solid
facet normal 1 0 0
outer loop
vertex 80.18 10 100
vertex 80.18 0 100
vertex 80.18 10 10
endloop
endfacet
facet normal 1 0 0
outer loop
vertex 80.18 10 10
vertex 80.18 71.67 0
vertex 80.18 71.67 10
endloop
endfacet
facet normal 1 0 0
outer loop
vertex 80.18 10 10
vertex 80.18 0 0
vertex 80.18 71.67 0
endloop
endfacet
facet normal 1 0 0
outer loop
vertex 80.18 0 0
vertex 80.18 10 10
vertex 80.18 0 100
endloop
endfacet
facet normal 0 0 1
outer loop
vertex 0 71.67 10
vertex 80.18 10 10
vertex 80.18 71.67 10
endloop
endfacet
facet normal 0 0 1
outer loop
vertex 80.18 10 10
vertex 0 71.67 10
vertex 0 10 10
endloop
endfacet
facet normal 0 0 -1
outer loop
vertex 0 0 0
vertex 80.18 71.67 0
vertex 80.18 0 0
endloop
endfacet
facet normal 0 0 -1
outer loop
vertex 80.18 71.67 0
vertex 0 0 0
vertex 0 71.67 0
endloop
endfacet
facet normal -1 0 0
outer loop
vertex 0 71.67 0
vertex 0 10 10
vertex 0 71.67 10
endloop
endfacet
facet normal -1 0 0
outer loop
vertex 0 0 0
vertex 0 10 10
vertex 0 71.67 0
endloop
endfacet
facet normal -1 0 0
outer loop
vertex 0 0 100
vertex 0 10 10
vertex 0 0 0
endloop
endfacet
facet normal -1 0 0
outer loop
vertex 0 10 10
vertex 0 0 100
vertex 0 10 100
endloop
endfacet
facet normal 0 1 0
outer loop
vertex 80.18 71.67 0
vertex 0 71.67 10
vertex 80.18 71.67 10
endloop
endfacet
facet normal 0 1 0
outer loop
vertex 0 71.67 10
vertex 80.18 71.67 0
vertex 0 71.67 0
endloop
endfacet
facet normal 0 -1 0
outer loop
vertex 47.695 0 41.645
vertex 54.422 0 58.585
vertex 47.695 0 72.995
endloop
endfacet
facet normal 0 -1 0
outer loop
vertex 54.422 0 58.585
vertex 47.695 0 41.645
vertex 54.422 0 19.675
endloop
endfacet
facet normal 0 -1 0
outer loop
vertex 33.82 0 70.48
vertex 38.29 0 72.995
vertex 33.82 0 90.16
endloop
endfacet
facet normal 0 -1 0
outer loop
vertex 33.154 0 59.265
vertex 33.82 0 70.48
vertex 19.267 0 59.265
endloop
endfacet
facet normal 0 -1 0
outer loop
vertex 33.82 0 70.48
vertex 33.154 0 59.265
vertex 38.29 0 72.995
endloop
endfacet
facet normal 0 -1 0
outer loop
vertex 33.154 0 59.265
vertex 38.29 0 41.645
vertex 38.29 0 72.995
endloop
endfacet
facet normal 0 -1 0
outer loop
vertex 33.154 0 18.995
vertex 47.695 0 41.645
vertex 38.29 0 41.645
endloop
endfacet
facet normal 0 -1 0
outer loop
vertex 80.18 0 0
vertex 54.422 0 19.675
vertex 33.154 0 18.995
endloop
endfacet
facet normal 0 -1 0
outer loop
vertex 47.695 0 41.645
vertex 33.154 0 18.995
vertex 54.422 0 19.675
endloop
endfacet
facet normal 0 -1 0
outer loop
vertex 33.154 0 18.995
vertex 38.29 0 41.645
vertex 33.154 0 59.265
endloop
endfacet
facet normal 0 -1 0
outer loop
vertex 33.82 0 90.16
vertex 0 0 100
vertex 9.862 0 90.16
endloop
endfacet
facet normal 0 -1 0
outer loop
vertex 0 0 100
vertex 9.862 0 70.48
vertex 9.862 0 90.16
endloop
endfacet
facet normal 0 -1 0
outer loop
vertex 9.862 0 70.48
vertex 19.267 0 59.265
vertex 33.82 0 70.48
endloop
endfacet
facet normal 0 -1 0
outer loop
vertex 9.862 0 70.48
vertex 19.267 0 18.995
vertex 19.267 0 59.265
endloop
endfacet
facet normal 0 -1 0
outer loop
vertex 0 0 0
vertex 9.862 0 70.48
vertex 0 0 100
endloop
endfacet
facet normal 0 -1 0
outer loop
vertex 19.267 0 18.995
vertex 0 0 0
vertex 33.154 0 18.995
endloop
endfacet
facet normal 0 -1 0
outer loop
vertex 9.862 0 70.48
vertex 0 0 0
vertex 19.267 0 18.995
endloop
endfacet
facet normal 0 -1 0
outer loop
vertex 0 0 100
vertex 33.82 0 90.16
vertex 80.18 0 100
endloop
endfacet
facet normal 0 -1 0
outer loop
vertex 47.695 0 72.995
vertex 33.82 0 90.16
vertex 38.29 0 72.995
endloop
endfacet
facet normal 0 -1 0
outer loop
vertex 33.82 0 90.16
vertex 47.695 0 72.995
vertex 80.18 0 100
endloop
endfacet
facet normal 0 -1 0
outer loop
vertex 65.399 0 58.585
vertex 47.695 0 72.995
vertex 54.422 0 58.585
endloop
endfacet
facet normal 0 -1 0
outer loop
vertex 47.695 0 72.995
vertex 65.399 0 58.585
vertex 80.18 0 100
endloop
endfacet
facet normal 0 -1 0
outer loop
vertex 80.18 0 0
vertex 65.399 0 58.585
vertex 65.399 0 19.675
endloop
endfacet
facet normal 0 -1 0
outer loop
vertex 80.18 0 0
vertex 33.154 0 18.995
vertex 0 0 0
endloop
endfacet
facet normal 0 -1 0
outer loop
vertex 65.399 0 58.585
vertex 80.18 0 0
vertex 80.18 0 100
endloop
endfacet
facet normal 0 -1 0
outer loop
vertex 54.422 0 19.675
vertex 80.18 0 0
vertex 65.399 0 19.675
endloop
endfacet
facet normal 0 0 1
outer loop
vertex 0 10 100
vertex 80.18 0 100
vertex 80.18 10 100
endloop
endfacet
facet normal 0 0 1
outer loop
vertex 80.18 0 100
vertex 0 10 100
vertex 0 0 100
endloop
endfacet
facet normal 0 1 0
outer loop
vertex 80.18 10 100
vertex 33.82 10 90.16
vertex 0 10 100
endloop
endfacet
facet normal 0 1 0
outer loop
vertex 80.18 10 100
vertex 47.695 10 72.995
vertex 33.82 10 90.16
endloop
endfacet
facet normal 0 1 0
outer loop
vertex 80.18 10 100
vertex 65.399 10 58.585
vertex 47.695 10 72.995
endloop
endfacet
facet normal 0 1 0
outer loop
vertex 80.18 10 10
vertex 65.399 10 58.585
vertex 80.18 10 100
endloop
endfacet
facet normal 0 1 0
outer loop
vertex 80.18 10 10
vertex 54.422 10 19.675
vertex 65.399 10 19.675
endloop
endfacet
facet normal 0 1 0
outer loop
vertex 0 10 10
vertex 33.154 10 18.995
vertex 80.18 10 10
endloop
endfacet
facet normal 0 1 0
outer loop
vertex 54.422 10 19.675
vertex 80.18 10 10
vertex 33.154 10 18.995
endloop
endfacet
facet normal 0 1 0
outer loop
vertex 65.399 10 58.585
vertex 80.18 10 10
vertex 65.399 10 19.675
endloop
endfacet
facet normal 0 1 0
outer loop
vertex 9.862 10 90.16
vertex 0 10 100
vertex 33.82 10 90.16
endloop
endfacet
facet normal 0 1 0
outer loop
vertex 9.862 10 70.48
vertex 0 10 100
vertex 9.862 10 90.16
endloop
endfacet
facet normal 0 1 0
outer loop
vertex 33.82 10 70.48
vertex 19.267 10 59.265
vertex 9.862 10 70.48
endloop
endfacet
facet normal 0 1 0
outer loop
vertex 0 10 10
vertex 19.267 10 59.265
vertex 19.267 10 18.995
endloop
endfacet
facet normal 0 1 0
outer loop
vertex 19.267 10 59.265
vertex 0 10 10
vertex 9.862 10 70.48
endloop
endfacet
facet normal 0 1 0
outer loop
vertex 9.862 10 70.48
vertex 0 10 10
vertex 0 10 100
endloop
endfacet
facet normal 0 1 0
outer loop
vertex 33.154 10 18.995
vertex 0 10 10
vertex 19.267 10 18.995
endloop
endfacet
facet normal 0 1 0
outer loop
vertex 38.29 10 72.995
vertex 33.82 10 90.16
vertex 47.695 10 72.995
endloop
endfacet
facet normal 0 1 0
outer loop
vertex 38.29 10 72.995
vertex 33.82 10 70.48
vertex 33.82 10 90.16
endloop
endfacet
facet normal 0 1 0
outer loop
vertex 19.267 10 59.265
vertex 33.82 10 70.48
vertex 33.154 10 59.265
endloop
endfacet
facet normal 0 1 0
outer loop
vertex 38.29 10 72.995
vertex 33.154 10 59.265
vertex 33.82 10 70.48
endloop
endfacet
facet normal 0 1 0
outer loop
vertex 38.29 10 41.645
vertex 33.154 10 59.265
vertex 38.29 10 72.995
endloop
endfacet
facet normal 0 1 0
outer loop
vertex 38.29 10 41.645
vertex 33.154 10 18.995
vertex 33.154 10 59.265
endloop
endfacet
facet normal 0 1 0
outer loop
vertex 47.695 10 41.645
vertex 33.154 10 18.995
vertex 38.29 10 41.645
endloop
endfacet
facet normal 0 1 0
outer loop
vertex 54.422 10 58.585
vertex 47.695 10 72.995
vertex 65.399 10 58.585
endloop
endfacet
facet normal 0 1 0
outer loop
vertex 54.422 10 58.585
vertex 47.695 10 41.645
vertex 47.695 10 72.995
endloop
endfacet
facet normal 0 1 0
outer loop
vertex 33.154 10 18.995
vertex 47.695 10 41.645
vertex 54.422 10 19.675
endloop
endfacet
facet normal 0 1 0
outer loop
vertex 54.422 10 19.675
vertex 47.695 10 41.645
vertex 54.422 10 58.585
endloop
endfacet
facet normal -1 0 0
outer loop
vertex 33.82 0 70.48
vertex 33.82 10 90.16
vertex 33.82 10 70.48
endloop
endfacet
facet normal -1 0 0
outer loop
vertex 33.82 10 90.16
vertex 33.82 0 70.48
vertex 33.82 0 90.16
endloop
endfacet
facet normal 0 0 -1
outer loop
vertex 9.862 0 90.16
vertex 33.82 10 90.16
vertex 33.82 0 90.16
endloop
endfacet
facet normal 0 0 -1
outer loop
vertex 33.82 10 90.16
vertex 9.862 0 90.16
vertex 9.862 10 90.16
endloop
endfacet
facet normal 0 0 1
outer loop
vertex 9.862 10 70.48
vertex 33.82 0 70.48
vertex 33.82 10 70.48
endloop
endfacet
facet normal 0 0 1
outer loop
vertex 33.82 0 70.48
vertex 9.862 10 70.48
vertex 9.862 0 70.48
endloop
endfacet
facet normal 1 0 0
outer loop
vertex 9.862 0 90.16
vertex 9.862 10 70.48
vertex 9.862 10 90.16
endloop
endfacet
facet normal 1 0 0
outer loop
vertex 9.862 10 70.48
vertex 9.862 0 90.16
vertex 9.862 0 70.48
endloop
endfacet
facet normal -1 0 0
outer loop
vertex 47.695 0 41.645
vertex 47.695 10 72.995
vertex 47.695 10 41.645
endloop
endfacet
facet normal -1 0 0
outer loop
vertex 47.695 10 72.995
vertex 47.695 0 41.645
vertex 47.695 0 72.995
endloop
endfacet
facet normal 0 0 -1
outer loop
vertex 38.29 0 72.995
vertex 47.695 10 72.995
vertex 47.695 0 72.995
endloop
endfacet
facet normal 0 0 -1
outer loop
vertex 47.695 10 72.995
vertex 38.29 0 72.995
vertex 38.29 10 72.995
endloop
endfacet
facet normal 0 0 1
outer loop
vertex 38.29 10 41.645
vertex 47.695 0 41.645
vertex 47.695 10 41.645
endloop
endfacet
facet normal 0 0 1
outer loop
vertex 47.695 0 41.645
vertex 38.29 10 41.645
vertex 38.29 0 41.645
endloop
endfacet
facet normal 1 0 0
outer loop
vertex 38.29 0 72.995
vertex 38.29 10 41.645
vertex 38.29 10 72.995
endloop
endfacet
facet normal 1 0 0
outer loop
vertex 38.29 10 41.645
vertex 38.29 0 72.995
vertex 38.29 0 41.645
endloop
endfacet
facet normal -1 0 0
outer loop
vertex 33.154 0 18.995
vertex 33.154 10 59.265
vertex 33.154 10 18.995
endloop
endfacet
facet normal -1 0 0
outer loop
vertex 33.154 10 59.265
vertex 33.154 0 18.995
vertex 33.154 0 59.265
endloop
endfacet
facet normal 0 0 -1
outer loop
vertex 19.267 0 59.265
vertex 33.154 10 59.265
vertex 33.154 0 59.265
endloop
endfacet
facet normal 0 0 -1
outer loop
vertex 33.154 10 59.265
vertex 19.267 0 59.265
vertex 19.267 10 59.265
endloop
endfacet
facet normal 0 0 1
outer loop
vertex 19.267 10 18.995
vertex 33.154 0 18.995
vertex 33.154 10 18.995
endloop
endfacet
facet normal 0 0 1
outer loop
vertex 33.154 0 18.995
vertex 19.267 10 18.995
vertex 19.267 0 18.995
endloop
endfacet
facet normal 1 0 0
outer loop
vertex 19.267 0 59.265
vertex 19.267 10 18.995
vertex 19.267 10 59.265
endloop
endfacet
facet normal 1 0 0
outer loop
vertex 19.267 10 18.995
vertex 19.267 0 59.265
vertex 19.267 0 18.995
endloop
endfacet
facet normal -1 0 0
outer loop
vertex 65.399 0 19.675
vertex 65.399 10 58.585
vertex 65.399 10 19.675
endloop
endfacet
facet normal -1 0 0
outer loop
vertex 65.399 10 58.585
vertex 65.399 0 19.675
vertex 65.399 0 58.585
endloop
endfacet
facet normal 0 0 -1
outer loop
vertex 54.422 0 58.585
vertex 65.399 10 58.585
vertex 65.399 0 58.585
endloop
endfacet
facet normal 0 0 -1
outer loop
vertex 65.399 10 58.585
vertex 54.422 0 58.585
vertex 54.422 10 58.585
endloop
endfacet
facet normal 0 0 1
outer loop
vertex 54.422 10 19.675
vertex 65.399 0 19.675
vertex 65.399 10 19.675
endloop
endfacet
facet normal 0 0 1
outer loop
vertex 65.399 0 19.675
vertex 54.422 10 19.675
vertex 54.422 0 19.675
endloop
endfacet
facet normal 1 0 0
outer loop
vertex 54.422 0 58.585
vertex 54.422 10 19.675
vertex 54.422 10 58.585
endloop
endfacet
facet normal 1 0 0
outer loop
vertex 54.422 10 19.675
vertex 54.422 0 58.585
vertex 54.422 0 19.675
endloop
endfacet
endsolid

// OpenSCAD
/* doodle-meta {"version":1,"parameters":{"width":{"label":"Overall width","description":"Changes the width of the bookend along the X axis","unit":"mm","feature":"body_width"},"depth":{"label":"Overall depth","description":"Changes the depth of the bookend along the Y axis","unit":"mm","feature":"body_depth"},"height":{"label":"Overall height","description":"Changes the height of the bookend along the Z axis","unit":"mm","feature":"body_height"},"wall_thickness":{"label":"Wall thickness","description":"Changes the thickness of the L-profile walls","unit":"mm","feature":"wall_thickness"}},"features":{"body_width":{"kind":"dimension","axis":"x","label":"Overall width"},"body_depth":{"kind":"dimension","axis":"y","label":"Overall depth"},"body_height":{"kind":"dimension","axis":"z","label":"Overall height"},"wall_thickness":{"kind":"region","label":"Wall thickness","min":[0,0,0],"max":[{"parameter":"wall_thickness","scale":1,"offset":0},{"parameter":"depth","scale":1,"offset":0},{"parameter":"height","scale":1,"offset":0}]}}} */

// Overall dimensions from derived_sizes
width = 80.18;
depth = 71.67;
height = 100.0;

// Wall thickness inferred from right view stroke width (reduced to match thin stroke)
wall_thickness = 10.0;

// Cutout parameters derived from front view normalized coordinates
// Front view mapping: X = u * width, Z = (1 - v) * height
// Cutout 1 (Top Left - Slot): center (0.2724, 0.1968), size (0.2988, 0.1968)
c1_u = 0.2724; c1_v = 0.1968; c1_w = 0.2988; c1_h = 0.1968;
// Cutout 2 (Center): center (0.5362, 0.4268), size (0.1173, 0.3135)
c2_u = 0.5362; c2_v = 0.4268; c2_w = 0.1173; c2_h = 0.3135;
// Cutout 3 (Bottom Left): center (0.3269, 0.6087), size (0.1732, 0.4027)
c3_u = 0.3269; c3_v = 0.6087; c3_w = 0.1732; c3_h = 0.4027;
// Cutout 4 (Bottom Right): center (0.7472, 0.6087), size (0.1369, 0.3891)
c4_u = 0.7472; c4_v = 0.6087; c4_w = 0.1369; c4_h = 0.3891;

// Helper to convert normalized view coords to mm
function u_to_x(u) = u * width;
function v_to_z(v) = (1.0 - v) * height;

// Helper to convert normalized size to mm
function w_to_mm(w) = w * width;
function h_to_mm(h) = h * height;

module l_shape_body() {
    // Base: Horizontal plate at bottom
    // Extends from Y=0 to Y=depth, Z=0 to Z=wall_thickness, X=0 to X=width
    cube([width, depth, wall_thickness]);
    
    // Panel: Vertical plate at front (Y=0)
    // Extends from Y=0 to Y=wall_thickness, Z=0 to Z=height, X=0 to X=width
    // This matches the right view where the vertical leg is on the right (front)
    translate([0, 0, 0])
        cube([width, wall_thickness, height]);
}

module cutout_rect(x, z, w, h) {
    // Rectangular cutter: Box oriented along Y
    eps = 0.1;
    y_start = -eps;
    y_len = wall_thickness + 2*eps;
    
    translate([x - w/2, y_start, z - h/2])
        cube([w, y_len, h]);
}

module design() {
    difference() {
        l_shape_body();
        
        // Cutout 1: Top Left (Rectangle)
        cutout_rect(u_to_x(c1_u), v_to_z(c1_v), w_to_mm(c1_w), h_to_mm(c1_h));
        
        // Cutout 2: Center Rectangle
        cutout_rect(u_to_x(c2_u), v_to_z(c2_v), w_to_mm(c2_w), h_to_mm(c2_h));
        
        // Cutout 3: Bottom Left Rectangle
        cutout_rect(u_to_x(c3_u), v_to_z(c3_v), w_to_mm(c3_w), h_to_mm(c3_h));
        
        // Cutout 4: Bottom Right Rectangle
        cutout_rect(u_to_x(c4_u), v_to_z(c4_v), w_to_mm(c4_w), h_to_mm(c4_h));
    }
}

design();
